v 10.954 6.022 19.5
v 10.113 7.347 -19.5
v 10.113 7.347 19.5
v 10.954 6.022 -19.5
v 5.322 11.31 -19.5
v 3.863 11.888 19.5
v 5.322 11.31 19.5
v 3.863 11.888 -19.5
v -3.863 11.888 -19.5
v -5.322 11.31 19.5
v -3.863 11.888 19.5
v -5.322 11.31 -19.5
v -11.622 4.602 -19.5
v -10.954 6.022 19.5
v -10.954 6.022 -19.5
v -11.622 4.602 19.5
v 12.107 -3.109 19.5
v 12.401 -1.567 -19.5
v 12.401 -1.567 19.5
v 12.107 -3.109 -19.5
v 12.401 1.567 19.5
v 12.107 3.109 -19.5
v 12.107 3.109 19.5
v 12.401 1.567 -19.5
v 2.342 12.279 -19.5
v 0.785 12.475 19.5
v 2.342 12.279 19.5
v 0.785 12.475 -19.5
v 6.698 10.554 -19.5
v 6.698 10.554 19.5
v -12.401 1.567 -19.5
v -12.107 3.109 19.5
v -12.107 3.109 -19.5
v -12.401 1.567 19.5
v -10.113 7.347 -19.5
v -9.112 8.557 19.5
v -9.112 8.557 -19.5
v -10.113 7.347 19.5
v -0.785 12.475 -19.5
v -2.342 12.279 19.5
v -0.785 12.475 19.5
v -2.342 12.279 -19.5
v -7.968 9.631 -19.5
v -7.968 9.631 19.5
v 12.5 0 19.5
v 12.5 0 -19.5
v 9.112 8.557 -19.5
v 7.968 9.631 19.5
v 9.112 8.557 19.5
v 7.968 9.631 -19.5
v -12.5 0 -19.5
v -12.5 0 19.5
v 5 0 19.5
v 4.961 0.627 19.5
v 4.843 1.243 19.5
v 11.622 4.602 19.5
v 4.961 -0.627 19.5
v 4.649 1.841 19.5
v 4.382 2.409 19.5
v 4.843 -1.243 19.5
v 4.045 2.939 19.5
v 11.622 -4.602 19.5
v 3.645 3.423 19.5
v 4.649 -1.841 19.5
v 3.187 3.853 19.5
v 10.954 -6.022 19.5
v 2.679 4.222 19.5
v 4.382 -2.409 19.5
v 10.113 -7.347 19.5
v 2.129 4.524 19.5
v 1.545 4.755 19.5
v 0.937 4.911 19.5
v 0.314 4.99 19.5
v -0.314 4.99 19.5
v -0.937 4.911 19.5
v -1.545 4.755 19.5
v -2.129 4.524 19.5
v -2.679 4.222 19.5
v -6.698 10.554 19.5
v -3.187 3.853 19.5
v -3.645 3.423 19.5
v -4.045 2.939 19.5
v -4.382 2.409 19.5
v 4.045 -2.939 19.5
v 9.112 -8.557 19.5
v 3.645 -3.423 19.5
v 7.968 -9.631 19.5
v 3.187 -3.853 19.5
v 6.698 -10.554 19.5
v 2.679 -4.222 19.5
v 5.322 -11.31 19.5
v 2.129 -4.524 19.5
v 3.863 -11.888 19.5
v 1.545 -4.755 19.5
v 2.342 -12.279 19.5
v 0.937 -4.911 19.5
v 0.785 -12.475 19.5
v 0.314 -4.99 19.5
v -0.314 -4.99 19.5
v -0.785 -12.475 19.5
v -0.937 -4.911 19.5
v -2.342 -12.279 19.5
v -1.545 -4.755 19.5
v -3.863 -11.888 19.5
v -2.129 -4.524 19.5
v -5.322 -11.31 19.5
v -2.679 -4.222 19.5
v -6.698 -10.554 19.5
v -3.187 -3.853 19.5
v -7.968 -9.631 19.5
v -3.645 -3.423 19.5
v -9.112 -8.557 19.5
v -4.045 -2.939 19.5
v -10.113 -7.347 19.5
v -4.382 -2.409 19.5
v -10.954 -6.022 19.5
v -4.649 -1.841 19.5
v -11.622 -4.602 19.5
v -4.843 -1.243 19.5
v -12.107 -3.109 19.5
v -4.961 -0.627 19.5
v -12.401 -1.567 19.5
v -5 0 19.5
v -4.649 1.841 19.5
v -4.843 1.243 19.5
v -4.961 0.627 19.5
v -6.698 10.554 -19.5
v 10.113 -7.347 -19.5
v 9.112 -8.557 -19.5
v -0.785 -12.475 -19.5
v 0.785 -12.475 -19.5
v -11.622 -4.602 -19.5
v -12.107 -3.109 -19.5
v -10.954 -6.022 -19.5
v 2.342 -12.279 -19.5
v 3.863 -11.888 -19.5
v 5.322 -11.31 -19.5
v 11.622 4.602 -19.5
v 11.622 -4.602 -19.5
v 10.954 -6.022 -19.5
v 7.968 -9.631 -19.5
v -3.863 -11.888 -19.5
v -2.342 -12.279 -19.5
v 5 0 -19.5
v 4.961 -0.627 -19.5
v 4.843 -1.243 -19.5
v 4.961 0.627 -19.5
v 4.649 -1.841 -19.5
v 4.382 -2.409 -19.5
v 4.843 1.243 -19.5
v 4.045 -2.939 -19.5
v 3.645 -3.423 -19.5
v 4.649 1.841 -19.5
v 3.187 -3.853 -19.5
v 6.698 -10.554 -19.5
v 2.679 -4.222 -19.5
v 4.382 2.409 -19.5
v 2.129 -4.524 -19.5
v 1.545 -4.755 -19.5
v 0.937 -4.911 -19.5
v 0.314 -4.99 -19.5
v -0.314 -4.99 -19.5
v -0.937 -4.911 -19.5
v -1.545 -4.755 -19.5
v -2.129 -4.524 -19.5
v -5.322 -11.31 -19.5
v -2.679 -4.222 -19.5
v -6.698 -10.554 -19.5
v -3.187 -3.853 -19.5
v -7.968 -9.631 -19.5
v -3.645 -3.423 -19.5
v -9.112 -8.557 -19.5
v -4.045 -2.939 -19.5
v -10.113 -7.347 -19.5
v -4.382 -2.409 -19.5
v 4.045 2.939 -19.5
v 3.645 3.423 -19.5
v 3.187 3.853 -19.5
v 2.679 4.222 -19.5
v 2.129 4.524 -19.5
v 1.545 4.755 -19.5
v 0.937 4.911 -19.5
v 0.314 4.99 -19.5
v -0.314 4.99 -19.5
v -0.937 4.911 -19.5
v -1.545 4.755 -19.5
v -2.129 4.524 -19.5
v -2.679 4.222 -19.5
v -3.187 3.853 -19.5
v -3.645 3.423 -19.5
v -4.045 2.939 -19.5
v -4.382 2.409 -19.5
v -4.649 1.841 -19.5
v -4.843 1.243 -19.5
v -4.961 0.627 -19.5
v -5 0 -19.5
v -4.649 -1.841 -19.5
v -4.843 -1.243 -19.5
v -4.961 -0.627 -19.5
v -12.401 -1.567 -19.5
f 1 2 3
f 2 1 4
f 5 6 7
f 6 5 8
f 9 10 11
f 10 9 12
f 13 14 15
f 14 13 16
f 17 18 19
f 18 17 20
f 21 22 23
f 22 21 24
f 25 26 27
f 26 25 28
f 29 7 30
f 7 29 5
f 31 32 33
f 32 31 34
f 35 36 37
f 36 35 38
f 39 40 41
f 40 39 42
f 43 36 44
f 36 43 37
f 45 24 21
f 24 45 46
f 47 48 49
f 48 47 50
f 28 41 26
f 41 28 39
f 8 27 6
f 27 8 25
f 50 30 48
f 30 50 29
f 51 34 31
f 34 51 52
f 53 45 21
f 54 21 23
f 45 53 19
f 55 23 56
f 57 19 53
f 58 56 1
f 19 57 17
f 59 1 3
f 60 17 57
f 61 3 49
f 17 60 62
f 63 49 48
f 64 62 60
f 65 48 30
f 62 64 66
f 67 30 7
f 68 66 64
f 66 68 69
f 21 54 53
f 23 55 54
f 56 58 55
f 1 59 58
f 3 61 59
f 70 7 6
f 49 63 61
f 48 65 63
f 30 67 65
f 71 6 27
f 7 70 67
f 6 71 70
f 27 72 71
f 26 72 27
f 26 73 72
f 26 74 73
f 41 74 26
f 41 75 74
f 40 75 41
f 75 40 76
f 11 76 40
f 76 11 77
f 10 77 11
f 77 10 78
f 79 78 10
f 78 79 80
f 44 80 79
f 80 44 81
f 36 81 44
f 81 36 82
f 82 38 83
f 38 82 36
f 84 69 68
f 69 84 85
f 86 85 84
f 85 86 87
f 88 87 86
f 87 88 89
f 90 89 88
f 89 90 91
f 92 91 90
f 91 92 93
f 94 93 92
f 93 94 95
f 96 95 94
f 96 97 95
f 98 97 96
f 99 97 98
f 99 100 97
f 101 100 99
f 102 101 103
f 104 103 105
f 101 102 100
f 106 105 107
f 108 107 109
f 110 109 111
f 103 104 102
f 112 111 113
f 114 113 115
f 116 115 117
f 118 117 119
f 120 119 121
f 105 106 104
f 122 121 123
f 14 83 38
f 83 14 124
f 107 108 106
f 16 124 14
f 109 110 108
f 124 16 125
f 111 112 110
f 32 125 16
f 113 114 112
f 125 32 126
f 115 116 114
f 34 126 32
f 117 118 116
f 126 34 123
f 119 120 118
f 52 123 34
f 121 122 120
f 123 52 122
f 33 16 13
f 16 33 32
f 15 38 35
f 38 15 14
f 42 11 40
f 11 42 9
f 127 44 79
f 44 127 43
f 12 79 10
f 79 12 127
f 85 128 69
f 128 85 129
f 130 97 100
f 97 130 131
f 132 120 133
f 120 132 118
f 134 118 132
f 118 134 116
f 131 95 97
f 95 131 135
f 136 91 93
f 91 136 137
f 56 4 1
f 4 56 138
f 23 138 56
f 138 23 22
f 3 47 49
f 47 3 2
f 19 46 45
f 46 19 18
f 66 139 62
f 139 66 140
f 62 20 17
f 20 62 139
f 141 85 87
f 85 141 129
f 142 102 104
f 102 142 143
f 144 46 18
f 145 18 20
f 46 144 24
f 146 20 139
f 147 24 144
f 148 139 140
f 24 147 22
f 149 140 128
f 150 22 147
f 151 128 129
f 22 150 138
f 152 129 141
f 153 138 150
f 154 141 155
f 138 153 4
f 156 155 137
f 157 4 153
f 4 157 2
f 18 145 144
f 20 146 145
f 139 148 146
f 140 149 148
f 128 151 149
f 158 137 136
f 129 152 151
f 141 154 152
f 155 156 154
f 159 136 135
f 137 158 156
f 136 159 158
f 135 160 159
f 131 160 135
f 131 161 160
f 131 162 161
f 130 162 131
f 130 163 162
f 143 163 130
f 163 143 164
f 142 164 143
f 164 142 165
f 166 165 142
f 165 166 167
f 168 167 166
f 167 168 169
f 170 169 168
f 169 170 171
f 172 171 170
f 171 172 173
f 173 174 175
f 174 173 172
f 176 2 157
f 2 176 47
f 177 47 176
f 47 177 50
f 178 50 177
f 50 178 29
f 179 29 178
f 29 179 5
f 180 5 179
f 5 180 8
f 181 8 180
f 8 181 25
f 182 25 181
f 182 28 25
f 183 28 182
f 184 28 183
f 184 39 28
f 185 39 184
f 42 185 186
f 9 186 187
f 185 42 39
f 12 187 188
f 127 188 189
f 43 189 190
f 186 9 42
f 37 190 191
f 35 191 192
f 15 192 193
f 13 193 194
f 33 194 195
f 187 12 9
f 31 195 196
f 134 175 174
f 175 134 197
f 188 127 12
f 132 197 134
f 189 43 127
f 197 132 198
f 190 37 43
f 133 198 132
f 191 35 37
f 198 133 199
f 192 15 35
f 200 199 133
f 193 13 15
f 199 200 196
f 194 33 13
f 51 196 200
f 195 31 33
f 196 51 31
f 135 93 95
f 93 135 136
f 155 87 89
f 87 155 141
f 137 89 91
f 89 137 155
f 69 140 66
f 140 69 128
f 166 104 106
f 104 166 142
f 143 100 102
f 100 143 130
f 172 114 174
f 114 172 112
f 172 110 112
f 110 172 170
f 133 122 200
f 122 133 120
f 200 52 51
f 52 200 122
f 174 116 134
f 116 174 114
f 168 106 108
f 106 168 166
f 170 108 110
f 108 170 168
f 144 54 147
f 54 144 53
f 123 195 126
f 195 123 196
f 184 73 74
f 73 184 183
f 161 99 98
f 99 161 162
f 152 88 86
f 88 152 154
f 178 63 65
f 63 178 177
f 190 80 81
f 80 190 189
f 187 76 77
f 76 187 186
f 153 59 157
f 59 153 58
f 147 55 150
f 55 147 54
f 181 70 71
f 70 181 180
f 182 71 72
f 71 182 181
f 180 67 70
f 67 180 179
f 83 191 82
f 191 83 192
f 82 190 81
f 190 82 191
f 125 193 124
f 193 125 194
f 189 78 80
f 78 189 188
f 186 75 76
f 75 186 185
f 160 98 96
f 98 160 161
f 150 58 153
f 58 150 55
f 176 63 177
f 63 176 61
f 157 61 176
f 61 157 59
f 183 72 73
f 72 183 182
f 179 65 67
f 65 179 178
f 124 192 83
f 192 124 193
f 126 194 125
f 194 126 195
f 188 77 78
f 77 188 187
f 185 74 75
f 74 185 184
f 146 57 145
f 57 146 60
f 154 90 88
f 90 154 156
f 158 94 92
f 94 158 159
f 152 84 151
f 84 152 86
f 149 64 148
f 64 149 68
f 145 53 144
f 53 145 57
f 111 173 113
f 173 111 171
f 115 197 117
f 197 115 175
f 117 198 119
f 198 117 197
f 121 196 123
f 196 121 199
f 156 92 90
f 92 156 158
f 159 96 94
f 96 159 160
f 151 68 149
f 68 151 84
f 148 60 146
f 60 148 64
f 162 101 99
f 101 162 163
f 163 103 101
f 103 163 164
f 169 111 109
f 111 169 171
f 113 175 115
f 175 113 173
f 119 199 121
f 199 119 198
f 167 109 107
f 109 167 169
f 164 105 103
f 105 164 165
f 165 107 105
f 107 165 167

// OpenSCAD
$fn = 50;


difference() {
	union() {
		translate(v = [0, 0, -19.5000000000]) {
			cylinder(h = 39, r = 12.5000000000);
		}
	}
	union() {
		translate(v = [0, 0, -100.0000000000]) {
			cylinder(h = 200, r = 5);
		}
	}
}
